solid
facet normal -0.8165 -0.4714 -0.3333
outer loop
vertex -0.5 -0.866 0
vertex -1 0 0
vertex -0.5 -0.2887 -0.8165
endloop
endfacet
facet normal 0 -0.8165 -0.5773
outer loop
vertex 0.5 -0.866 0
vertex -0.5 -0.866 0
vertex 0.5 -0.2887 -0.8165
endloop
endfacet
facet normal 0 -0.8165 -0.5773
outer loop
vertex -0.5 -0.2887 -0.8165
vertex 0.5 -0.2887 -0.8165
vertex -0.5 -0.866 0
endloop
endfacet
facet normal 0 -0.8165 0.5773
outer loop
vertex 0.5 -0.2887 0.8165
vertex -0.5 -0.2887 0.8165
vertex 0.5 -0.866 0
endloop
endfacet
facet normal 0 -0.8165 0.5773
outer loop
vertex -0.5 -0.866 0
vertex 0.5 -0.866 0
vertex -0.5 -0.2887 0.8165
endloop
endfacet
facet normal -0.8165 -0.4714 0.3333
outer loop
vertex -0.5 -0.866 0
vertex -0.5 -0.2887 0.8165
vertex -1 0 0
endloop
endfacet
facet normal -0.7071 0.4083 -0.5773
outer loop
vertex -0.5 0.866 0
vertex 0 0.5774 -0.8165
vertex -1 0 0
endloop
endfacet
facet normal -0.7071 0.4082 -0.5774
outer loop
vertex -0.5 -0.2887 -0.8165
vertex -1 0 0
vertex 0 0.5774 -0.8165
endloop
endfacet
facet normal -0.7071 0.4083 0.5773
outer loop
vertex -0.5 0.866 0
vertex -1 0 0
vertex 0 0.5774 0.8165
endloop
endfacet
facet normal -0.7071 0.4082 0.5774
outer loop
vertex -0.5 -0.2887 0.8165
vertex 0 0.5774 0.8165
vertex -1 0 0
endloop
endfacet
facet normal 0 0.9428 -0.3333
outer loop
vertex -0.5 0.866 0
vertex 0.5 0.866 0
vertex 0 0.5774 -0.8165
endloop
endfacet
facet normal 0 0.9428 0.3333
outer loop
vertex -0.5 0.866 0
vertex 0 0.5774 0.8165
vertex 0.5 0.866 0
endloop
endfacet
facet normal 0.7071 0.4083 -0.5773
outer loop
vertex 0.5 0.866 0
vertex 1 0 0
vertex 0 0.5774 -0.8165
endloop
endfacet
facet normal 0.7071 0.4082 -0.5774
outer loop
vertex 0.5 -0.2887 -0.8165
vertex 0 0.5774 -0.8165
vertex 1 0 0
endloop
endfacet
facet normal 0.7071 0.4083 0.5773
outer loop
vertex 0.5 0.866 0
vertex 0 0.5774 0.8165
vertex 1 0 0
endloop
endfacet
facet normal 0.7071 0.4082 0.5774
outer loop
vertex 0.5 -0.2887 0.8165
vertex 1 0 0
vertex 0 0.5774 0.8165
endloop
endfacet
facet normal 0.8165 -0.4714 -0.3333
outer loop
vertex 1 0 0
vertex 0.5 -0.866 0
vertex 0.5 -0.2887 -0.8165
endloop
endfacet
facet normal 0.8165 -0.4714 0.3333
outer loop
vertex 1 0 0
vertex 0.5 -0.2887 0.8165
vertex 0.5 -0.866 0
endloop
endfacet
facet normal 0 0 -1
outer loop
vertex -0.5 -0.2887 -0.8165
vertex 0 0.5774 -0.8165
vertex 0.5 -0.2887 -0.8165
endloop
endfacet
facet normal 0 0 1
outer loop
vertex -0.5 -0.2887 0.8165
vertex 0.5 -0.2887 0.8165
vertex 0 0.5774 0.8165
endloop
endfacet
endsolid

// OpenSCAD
polyhedron( points = [[-0.500000000008418, -0.866025403779578, 5.08852219584913e-16], [-0.999999999999997, 1.09998343759349e-10, 5.08852219584913e-16], [-0.499999999930659, 0.866025403775097, 5.08852219584913e-16], [0.500000000000648, 0.866025403685307, 5.08852219584913e-16], [0.999999999914465, -6.95846713535343e-11, 5.08852219584913e-16], [0.499999999922898, -0.866025403779578, 5.08852219584913e-16], [-0.499999999963522, -0.288675134444054, -0.816496580825097], [3.5002667428768e-11, 0.577350269068445, -0.816496580825097], [0.499999999888336, -0.288675134438087, -0.816496580833536], [-0.49999999988576, -0.288675134578743, 0.816496580825096], [0.499999999877992, -0.288675134563773, 0.816496580825096], [1.4901668786791e-10, 0.577350269014555, 0.816496580833535]], faces = [[0, 1, 6], [0, 6, 8, 5], [0, 5, 10, 9], [0, 9, 1], [1, 2, 7, 6], [1, 9, 11, 2], [2, 3, 7], [2, 11, 3], [3, 4, 8, 7], [3, 11, 10, 4], [4, 5, 8], [4, 10, 5], [6, 7, 8], [9, 10, 11]]);
